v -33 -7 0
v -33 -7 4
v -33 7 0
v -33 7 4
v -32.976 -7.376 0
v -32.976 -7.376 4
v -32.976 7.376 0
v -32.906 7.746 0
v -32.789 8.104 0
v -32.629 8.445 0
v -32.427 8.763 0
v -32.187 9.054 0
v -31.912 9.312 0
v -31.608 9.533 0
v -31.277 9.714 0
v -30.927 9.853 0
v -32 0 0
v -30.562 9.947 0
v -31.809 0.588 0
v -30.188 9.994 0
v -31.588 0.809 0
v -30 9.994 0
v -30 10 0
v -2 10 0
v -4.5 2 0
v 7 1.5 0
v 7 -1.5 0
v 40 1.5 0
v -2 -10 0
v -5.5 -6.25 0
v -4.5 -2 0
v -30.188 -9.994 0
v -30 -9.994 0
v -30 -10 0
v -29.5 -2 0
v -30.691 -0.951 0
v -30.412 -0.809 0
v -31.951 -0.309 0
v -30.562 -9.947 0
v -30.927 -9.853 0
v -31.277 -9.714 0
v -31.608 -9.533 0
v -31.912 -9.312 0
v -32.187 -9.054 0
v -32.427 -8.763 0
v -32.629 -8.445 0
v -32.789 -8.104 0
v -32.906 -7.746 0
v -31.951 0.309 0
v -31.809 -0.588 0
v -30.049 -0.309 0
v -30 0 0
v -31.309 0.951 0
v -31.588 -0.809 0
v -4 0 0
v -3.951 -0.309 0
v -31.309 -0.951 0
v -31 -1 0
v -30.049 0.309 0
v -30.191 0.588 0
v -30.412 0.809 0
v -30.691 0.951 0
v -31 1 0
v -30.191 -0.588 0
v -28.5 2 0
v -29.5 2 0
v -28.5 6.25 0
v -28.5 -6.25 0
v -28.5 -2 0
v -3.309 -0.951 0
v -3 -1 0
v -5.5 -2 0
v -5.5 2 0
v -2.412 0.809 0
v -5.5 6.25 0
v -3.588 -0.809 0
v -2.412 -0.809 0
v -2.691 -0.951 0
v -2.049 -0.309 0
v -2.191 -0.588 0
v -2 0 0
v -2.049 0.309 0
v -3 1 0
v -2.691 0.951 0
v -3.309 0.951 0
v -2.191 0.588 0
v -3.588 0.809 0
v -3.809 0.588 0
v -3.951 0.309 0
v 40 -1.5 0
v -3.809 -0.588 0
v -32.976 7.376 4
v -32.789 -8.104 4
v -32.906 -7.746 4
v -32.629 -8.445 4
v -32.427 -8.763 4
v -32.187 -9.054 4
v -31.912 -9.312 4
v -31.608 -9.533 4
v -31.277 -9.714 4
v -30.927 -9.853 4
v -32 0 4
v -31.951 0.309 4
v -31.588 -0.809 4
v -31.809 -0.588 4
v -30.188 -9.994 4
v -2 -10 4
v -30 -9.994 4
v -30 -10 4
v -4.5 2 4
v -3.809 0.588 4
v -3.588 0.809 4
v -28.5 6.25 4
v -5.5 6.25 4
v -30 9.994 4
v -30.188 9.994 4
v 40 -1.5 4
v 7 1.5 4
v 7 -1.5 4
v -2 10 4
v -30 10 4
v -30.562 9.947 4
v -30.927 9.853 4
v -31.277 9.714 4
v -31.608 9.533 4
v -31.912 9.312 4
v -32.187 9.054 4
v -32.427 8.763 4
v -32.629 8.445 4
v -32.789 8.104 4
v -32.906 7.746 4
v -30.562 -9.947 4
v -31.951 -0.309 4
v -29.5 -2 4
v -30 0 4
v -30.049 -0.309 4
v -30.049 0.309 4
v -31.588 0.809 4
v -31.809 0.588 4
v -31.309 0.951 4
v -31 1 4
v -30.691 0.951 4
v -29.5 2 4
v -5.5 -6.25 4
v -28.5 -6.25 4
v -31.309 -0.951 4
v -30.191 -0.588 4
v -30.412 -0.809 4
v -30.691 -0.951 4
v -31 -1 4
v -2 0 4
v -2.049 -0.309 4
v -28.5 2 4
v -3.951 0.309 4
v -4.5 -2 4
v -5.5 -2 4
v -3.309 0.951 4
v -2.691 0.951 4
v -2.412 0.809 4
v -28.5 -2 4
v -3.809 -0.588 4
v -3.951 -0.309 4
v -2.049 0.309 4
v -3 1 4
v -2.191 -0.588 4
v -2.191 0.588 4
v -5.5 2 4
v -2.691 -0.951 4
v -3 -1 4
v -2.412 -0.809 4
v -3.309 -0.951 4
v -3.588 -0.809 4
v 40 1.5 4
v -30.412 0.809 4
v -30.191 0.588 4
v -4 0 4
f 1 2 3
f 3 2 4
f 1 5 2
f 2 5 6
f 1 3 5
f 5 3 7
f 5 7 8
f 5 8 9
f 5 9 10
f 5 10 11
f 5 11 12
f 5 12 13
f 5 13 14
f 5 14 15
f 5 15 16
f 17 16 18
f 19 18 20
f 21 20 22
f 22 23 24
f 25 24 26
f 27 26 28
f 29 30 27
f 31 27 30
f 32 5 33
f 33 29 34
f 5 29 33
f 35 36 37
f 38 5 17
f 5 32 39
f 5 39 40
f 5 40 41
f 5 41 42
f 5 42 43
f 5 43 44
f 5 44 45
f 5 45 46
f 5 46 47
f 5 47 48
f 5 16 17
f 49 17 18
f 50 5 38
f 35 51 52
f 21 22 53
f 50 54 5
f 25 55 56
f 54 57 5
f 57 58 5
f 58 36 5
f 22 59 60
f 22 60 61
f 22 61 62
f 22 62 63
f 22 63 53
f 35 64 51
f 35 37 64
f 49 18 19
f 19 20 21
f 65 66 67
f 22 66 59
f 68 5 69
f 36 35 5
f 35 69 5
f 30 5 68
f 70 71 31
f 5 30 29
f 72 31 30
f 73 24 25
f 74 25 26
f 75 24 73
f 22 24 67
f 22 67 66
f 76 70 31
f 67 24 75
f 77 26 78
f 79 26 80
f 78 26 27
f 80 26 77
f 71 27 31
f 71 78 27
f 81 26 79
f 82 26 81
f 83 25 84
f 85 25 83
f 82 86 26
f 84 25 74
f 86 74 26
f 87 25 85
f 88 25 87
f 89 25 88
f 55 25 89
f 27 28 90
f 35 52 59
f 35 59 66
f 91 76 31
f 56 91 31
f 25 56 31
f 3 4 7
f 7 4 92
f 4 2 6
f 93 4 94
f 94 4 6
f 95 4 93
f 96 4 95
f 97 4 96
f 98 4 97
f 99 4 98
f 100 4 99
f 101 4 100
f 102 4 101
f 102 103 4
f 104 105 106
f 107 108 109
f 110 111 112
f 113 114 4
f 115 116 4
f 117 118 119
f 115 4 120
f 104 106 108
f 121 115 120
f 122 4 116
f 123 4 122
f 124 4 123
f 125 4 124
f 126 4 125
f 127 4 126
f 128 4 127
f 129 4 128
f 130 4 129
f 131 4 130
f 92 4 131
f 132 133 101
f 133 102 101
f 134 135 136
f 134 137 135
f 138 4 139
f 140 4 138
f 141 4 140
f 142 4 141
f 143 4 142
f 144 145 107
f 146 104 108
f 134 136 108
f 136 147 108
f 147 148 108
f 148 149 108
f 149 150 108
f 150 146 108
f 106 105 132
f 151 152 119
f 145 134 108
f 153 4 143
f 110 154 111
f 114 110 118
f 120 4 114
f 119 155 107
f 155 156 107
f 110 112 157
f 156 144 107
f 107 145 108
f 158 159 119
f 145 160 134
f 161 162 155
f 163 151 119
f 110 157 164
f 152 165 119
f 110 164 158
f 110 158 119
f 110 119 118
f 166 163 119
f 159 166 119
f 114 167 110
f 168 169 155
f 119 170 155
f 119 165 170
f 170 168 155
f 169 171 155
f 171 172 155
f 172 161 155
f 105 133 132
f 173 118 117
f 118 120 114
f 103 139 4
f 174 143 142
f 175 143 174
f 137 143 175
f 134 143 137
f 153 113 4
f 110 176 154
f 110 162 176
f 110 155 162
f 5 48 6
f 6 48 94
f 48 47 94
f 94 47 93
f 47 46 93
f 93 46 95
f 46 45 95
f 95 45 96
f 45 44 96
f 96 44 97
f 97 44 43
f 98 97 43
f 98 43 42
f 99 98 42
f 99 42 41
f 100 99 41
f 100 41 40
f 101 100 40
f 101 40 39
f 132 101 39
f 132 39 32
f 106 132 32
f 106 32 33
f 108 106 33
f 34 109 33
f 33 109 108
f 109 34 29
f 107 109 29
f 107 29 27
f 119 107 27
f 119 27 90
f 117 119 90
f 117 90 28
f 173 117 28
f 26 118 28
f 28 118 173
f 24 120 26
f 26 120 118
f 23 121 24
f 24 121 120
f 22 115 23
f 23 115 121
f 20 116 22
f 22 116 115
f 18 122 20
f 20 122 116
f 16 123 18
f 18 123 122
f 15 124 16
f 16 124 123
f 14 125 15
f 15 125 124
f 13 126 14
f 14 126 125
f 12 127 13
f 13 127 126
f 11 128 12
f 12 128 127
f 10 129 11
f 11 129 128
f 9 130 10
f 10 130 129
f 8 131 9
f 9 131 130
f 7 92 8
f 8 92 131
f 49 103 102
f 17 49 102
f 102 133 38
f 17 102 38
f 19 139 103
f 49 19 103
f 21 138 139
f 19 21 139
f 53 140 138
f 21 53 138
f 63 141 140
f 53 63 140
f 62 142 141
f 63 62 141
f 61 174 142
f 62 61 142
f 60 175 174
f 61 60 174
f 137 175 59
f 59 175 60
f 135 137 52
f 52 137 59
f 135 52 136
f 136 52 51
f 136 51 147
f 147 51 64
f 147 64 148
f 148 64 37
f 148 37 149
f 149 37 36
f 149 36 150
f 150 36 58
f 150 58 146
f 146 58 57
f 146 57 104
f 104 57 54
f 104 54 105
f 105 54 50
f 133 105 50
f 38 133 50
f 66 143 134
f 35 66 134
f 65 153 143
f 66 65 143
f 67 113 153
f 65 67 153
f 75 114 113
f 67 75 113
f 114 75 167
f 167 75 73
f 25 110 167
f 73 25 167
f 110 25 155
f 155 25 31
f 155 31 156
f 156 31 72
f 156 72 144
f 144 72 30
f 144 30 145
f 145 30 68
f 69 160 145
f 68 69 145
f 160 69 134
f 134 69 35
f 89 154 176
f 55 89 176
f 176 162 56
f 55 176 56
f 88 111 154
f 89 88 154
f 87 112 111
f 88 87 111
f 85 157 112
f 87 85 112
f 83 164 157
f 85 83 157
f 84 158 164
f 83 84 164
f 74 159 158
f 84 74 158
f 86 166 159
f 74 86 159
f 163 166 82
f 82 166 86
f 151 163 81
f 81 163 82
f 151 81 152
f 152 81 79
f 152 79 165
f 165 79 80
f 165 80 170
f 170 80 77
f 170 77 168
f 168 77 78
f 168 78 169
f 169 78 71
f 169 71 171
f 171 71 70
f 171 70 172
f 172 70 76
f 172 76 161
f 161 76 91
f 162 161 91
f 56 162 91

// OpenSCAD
tibia();

module tibia(sl = 23, sw = 12.5){
	difference(){
		//solid parts
		union(){
			hull(){
				//main inner square
				translate([-30,-10,0]) cube([28,20,4]);
				//lower taper
				translate([5,-1.5,0]) cube([2,3,4]);
			}
	
			//leg
			translate([0,-1.5,0]) cube([40,3,4]);
			//top bar
			translate([-33,-7,0]) cube([6,14,4]);
			//rounded corners
			for (i = [ [-30,7,0],[-30,-7,0] ]){
				translate(i) cylinder(r=3,h=4,$fn=50);
			}	
		}
		//servo mounts
		for (i = [ [-3,0,-2],[-31,0,-2] ]){
			translate(i) cylinder(r=1,h=20,$fn=20);
		}
		//hole for servo body
		translate([-17,0,2])  cube([sl,sw,22], center=true);
		
		// hole for servo wires
		translate([-5,0,2]) cube([1,4,10], center=true);
		translate([-29,0,2]) cube([1,4,10], center=true);	
	}
}
